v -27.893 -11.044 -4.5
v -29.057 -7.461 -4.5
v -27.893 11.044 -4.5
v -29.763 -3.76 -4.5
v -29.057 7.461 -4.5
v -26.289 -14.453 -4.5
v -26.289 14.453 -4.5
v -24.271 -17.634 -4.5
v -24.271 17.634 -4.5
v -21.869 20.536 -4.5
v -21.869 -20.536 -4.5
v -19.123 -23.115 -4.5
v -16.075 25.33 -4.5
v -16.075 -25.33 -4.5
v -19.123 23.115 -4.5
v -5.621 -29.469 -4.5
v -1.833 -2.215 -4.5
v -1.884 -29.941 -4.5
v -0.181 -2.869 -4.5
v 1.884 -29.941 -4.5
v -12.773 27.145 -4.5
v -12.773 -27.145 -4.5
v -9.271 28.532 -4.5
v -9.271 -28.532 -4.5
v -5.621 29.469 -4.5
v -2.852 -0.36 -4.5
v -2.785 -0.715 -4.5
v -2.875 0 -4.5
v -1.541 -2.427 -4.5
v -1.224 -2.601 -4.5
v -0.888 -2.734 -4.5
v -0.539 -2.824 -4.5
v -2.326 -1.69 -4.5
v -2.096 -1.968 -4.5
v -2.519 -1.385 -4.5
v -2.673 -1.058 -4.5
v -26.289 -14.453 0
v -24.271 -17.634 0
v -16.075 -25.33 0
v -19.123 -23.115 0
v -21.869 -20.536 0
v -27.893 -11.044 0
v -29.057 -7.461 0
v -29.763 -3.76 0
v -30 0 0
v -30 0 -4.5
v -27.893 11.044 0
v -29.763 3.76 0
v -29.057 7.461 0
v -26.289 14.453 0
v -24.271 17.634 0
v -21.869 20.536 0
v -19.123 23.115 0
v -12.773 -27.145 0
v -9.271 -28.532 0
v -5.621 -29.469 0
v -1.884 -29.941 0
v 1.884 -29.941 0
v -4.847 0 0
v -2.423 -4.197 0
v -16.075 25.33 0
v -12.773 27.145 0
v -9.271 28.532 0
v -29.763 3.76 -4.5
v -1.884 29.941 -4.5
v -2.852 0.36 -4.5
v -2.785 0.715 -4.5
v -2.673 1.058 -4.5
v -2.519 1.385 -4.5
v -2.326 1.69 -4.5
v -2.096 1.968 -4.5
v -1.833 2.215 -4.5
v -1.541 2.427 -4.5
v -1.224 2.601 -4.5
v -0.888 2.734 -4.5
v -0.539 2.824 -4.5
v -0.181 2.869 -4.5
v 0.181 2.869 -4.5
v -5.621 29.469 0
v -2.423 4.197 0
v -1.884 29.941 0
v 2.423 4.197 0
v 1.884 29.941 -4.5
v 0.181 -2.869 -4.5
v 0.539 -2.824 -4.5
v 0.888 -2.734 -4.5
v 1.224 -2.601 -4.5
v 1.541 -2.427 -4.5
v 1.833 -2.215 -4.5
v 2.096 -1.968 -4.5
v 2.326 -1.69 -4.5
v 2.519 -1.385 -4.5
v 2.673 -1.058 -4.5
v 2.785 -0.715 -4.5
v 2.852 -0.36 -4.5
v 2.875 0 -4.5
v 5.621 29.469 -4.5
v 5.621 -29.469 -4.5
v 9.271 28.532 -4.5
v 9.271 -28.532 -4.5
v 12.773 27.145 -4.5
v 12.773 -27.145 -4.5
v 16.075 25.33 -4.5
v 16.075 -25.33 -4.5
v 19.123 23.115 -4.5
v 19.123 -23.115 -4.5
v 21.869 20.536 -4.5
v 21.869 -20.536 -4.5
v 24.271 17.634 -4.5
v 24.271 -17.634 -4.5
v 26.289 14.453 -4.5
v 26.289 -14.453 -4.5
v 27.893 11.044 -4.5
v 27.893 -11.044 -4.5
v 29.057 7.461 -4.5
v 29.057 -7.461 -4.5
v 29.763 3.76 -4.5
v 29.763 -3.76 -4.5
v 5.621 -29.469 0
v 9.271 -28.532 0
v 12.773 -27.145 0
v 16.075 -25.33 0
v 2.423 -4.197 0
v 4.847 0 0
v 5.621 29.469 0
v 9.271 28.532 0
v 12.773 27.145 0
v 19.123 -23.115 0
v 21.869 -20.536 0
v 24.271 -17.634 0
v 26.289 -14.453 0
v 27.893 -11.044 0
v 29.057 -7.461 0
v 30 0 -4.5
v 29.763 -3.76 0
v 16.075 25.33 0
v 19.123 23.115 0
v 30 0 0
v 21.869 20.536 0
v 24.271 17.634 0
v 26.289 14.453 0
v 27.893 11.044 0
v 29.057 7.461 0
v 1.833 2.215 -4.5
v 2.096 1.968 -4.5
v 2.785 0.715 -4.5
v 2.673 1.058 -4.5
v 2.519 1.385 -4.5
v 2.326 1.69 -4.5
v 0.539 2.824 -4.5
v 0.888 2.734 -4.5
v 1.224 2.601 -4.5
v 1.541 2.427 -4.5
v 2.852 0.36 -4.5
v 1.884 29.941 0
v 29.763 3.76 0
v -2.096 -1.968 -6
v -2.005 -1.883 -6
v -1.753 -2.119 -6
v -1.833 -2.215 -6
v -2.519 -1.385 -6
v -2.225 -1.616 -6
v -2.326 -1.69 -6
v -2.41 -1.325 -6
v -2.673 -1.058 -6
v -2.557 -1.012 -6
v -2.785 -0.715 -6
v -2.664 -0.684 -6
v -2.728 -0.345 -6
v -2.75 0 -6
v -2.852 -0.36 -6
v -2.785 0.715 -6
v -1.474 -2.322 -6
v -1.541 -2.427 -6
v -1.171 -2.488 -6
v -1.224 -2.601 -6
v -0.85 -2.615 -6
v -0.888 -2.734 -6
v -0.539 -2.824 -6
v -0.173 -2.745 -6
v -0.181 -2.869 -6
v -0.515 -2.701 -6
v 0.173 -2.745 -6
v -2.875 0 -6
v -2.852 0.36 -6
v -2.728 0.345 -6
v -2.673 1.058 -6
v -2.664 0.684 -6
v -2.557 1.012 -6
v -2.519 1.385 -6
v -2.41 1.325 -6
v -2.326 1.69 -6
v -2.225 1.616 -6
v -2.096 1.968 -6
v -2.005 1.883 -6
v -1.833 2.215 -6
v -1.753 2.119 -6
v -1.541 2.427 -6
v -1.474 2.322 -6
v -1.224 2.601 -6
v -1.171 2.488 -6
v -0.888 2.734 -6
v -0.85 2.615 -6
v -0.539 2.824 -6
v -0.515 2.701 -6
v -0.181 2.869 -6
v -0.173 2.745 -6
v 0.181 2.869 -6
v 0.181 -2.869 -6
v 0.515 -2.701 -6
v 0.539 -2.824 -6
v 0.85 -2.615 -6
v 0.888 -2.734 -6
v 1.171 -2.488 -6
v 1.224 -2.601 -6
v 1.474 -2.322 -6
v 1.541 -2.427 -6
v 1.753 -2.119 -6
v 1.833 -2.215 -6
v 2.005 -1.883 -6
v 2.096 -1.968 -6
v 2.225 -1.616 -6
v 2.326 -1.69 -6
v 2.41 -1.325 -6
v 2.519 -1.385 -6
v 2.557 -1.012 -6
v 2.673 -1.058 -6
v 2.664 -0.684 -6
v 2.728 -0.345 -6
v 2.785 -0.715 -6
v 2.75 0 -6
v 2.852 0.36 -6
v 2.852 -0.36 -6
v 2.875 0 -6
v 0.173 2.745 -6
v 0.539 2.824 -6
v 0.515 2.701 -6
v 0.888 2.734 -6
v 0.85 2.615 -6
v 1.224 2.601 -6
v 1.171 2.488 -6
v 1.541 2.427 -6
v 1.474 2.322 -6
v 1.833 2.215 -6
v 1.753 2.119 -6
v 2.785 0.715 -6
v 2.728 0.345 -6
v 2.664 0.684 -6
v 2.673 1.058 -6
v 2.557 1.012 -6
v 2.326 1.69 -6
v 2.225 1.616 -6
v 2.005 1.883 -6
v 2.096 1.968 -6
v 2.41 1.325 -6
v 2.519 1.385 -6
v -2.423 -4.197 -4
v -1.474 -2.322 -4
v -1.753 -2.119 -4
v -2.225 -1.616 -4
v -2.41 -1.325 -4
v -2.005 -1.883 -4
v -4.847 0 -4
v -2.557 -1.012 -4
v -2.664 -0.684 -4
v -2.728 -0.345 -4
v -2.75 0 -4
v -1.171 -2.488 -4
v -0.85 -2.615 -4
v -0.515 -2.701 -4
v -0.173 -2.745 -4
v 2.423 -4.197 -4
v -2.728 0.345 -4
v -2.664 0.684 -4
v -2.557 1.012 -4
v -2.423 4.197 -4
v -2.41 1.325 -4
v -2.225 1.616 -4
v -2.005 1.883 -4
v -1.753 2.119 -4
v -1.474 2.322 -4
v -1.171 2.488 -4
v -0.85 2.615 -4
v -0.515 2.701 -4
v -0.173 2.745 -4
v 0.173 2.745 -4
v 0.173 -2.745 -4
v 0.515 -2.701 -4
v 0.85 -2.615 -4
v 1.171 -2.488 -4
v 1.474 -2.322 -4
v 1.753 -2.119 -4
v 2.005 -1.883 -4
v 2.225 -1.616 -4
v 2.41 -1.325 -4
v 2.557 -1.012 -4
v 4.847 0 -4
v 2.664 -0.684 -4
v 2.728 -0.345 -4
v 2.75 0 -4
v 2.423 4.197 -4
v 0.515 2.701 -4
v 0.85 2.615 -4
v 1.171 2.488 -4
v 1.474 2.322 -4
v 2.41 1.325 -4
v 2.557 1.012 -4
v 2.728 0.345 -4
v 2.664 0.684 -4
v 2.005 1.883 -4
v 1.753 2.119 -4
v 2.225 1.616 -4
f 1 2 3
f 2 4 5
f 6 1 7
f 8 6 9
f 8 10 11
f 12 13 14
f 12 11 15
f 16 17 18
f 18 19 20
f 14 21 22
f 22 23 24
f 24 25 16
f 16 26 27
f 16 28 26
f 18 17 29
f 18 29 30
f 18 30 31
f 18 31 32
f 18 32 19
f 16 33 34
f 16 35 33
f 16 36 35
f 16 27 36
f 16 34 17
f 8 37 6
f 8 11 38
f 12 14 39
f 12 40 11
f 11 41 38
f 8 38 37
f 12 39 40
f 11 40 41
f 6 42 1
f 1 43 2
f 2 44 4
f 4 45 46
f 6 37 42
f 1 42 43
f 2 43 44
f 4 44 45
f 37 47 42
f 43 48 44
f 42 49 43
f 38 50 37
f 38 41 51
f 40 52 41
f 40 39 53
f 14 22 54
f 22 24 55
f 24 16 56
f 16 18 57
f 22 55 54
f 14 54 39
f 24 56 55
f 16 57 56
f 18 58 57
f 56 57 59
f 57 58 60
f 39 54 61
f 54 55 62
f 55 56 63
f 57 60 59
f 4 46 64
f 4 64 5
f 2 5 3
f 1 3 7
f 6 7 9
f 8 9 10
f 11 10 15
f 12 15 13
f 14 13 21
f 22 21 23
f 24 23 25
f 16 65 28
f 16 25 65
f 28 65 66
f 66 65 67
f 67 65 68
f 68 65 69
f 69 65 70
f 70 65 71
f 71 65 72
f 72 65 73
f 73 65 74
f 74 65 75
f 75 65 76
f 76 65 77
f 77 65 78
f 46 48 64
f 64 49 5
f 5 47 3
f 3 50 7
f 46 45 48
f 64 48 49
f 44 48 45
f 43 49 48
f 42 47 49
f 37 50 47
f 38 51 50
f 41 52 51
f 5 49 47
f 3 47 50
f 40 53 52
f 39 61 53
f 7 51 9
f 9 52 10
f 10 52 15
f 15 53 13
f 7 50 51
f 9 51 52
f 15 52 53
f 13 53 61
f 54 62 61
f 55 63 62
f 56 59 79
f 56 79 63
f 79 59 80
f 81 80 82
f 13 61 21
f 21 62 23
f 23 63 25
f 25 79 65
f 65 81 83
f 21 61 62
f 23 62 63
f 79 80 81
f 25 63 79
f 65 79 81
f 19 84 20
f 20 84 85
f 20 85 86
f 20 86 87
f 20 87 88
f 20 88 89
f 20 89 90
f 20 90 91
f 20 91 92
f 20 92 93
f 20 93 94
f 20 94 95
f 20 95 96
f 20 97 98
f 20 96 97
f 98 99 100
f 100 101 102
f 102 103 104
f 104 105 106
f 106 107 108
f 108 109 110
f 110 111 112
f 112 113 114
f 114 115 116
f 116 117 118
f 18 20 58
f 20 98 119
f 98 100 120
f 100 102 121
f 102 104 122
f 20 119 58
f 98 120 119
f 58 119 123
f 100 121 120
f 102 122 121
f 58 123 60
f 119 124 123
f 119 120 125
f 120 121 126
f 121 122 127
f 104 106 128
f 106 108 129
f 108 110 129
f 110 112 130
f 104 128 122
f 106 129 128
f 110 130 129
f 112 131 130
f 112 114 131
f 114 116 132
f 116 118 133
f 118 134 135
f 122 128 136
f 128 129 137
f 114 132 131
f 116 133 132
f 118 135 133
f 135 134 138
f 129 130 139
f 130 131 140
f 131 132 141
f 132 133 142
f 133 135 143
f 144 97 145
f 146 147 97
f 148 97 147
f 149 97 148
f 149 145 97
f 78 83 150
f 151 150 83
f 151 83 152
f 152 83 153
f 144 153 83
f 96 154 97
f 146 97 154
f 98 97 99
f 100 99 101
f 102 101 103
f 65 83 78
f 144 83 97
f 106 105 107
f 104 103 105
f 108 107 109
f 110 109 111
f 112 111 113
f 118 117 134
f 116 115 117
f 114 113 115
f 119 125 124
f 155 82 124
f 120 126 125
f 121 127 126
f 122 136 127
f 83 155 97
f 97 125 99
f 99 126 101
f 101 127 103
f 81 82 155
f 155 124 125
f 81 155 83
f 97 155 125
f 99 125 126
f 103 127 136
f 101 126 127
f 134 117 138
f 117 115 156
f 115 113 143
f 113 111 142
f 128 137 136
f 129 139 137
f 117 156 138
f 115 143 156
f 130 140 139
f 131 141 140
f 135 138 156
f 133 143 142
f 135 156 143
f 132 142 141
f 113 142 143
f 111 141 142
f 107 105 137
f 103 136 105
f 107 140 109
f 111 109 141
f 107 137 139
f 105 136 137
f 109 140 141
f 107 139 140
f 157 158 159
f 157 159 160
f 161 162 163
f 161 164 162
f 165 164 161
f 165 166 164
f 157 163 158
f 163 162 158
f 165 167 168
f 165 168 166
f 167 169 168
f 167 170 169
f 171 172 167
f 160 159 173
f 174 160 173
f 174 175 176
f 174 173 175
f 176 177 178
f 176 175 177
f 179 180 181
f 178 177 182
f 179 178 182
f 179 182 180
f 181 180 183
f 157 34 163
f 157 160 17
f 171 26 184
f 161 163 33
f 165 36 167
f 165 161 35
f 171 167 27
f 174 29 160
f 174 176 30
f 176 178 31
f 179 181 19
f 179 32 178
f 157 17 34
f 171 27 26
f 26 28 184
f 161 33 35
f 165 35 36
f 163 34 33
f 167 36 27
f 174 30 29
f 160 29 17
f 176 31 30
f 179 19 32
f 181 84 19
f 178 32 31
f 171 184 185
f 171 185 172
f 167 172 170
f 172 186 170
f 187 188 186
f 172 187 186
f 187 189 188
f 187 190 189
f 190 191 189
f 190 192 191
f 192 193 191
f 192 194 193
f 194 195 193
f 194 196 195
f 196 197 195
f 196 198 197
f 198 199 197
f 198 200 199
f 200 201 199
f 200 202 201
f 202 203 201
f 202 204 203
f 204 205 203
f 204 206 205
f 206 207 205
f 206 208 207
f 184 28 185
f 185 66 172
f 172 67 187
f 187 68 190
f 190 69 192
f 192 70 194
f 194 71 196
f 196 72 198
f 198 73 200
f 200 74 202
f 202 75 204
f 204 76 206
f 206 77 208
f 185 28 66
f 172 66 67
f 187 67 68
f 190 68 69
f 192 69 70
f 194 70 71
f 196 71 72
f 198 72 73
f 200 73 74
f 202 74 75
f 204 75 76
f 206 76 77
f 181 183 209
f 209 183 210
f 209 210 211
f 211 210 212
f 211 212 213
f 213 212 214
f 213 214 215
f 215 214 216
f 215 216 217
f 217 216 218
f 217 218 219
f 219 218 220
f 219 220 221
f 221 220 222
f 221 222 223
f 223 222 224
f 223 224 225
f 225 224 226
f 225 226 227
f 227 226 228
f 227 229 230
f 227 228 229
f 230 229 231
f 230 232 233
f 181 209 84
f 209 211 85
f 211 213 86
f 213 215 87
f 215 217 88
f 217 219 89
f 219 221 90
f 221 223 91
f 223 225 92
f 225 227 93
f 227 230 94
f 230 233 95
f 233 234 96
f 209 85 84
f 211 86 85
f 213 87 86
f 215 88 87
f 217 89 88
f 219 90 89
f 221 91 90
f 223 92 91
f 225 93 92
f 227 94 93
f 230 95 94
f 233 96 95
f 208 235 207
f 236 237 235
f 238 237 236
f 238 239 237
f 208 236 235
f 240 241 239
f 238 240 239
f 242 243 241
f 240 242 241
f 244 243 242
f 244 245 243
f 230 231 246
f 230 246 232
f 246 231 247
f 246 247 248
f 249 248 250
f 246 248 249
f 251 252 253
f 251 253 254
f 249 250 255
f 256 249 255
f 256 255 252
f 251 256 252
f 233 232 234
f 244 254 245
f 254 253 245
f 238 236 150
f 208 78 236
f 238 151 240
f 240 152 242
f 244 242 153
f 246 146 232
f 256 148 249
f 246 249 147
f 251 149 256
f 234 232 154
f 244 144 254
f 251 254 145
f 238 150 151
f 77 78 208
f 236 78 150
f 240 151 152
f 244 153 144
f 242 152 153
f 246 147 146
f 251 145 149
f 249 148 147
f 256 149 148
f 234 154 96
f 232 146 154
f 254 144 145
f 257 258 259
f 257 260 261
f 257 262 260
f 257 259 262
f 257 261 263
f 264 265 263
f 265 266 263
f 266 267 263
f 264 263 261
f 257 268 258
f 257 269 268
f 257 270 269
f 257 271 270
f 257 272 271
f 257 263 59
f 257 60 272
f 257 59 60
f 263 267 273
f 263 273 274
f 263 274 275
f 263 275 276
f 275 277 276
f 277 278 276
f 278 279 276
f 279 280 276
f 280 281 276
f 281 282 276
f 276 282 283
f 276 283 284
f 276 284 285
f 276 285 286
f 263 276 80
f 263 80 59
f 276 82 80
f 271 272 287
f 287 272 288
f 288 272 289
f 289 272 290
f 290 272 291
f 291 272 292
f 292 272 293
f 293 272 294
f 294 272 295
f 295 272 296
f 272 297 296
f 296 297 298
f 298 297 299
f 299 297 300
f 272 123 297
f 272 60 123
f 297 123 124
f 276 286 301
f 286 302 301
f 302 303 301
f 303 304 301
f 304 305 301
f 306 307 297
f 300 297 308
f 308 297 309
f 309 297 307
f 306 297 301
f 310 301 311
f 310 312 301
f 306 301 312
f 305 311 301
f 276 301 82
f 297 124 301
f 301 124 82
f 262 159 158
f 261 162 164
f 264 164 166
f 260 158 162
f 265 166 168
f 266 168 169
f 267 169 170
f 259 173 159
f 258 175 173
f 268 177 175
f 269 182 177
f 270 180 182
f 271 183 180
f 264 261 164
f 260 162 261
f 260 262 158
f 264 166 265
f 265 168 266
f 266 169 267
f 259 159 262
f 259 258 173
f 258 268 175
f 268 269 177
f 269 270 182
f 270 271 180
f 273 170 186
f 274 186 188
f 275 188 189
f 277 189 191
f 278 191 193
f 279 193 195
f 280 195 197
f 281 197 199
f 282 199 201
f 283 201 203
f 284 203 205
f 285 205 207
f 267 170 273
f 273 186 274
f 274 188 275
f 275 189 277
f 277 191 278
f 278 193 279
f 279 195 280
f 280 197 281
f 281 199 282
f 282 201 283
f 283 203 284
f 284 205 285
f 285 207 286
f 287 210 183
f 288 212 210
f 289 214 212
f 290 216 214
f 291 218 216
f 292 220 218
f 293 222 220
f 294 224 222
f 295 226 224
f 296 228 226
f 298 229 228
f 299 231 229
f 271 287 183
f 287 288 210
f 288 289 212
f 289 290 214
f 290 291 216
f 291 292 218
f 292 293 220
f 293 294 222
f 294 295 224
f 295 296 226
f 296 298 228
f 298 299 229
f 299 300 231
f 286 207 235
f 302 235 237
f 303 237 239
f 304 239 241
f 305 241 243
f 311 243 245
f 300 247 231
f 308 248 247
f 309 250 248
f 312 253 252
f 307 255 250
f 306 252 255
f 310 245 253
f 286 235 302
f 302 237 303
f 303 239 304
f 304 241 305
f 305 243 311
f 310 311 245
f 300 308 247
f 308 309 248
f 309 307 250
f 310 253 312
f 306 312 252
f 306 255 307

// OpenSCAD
$fn = 50;

difference() {
	union() {
		translate(v = [0, 0, -4.5]) {
			cylinder(h = 4.5, r = 30.0);
		}
		#translate(v = [0, 0, -6.0]) {
			cylinder(h = 6, r = 2.875);
		}
	}
	union() {
		translate(v = [0, 0, 0]) {
			rotate(a = [0, 0, 0]) {
				difference() {
					union() {
						translate(v = [0, 0, -4]) {
							linear_extrude(height = 4) {
								polygon(points = [[4.8468, 0.0], [2.4234000000000004, 4.197451927062417], [-2.423399999999999, 4.197451927062417], [-4.8468, 5.935618106107392e-16], [-2.423400000000002, -4.197451927062416], [2.423399999999997, -4.197451927062419]]);
							}
						}
					}
					union();
				}
			}
		}
		#translate(v = [0, 0, -100.0]) {
			cylinder(h = 200, r = 2.75);
		}
	}
}
